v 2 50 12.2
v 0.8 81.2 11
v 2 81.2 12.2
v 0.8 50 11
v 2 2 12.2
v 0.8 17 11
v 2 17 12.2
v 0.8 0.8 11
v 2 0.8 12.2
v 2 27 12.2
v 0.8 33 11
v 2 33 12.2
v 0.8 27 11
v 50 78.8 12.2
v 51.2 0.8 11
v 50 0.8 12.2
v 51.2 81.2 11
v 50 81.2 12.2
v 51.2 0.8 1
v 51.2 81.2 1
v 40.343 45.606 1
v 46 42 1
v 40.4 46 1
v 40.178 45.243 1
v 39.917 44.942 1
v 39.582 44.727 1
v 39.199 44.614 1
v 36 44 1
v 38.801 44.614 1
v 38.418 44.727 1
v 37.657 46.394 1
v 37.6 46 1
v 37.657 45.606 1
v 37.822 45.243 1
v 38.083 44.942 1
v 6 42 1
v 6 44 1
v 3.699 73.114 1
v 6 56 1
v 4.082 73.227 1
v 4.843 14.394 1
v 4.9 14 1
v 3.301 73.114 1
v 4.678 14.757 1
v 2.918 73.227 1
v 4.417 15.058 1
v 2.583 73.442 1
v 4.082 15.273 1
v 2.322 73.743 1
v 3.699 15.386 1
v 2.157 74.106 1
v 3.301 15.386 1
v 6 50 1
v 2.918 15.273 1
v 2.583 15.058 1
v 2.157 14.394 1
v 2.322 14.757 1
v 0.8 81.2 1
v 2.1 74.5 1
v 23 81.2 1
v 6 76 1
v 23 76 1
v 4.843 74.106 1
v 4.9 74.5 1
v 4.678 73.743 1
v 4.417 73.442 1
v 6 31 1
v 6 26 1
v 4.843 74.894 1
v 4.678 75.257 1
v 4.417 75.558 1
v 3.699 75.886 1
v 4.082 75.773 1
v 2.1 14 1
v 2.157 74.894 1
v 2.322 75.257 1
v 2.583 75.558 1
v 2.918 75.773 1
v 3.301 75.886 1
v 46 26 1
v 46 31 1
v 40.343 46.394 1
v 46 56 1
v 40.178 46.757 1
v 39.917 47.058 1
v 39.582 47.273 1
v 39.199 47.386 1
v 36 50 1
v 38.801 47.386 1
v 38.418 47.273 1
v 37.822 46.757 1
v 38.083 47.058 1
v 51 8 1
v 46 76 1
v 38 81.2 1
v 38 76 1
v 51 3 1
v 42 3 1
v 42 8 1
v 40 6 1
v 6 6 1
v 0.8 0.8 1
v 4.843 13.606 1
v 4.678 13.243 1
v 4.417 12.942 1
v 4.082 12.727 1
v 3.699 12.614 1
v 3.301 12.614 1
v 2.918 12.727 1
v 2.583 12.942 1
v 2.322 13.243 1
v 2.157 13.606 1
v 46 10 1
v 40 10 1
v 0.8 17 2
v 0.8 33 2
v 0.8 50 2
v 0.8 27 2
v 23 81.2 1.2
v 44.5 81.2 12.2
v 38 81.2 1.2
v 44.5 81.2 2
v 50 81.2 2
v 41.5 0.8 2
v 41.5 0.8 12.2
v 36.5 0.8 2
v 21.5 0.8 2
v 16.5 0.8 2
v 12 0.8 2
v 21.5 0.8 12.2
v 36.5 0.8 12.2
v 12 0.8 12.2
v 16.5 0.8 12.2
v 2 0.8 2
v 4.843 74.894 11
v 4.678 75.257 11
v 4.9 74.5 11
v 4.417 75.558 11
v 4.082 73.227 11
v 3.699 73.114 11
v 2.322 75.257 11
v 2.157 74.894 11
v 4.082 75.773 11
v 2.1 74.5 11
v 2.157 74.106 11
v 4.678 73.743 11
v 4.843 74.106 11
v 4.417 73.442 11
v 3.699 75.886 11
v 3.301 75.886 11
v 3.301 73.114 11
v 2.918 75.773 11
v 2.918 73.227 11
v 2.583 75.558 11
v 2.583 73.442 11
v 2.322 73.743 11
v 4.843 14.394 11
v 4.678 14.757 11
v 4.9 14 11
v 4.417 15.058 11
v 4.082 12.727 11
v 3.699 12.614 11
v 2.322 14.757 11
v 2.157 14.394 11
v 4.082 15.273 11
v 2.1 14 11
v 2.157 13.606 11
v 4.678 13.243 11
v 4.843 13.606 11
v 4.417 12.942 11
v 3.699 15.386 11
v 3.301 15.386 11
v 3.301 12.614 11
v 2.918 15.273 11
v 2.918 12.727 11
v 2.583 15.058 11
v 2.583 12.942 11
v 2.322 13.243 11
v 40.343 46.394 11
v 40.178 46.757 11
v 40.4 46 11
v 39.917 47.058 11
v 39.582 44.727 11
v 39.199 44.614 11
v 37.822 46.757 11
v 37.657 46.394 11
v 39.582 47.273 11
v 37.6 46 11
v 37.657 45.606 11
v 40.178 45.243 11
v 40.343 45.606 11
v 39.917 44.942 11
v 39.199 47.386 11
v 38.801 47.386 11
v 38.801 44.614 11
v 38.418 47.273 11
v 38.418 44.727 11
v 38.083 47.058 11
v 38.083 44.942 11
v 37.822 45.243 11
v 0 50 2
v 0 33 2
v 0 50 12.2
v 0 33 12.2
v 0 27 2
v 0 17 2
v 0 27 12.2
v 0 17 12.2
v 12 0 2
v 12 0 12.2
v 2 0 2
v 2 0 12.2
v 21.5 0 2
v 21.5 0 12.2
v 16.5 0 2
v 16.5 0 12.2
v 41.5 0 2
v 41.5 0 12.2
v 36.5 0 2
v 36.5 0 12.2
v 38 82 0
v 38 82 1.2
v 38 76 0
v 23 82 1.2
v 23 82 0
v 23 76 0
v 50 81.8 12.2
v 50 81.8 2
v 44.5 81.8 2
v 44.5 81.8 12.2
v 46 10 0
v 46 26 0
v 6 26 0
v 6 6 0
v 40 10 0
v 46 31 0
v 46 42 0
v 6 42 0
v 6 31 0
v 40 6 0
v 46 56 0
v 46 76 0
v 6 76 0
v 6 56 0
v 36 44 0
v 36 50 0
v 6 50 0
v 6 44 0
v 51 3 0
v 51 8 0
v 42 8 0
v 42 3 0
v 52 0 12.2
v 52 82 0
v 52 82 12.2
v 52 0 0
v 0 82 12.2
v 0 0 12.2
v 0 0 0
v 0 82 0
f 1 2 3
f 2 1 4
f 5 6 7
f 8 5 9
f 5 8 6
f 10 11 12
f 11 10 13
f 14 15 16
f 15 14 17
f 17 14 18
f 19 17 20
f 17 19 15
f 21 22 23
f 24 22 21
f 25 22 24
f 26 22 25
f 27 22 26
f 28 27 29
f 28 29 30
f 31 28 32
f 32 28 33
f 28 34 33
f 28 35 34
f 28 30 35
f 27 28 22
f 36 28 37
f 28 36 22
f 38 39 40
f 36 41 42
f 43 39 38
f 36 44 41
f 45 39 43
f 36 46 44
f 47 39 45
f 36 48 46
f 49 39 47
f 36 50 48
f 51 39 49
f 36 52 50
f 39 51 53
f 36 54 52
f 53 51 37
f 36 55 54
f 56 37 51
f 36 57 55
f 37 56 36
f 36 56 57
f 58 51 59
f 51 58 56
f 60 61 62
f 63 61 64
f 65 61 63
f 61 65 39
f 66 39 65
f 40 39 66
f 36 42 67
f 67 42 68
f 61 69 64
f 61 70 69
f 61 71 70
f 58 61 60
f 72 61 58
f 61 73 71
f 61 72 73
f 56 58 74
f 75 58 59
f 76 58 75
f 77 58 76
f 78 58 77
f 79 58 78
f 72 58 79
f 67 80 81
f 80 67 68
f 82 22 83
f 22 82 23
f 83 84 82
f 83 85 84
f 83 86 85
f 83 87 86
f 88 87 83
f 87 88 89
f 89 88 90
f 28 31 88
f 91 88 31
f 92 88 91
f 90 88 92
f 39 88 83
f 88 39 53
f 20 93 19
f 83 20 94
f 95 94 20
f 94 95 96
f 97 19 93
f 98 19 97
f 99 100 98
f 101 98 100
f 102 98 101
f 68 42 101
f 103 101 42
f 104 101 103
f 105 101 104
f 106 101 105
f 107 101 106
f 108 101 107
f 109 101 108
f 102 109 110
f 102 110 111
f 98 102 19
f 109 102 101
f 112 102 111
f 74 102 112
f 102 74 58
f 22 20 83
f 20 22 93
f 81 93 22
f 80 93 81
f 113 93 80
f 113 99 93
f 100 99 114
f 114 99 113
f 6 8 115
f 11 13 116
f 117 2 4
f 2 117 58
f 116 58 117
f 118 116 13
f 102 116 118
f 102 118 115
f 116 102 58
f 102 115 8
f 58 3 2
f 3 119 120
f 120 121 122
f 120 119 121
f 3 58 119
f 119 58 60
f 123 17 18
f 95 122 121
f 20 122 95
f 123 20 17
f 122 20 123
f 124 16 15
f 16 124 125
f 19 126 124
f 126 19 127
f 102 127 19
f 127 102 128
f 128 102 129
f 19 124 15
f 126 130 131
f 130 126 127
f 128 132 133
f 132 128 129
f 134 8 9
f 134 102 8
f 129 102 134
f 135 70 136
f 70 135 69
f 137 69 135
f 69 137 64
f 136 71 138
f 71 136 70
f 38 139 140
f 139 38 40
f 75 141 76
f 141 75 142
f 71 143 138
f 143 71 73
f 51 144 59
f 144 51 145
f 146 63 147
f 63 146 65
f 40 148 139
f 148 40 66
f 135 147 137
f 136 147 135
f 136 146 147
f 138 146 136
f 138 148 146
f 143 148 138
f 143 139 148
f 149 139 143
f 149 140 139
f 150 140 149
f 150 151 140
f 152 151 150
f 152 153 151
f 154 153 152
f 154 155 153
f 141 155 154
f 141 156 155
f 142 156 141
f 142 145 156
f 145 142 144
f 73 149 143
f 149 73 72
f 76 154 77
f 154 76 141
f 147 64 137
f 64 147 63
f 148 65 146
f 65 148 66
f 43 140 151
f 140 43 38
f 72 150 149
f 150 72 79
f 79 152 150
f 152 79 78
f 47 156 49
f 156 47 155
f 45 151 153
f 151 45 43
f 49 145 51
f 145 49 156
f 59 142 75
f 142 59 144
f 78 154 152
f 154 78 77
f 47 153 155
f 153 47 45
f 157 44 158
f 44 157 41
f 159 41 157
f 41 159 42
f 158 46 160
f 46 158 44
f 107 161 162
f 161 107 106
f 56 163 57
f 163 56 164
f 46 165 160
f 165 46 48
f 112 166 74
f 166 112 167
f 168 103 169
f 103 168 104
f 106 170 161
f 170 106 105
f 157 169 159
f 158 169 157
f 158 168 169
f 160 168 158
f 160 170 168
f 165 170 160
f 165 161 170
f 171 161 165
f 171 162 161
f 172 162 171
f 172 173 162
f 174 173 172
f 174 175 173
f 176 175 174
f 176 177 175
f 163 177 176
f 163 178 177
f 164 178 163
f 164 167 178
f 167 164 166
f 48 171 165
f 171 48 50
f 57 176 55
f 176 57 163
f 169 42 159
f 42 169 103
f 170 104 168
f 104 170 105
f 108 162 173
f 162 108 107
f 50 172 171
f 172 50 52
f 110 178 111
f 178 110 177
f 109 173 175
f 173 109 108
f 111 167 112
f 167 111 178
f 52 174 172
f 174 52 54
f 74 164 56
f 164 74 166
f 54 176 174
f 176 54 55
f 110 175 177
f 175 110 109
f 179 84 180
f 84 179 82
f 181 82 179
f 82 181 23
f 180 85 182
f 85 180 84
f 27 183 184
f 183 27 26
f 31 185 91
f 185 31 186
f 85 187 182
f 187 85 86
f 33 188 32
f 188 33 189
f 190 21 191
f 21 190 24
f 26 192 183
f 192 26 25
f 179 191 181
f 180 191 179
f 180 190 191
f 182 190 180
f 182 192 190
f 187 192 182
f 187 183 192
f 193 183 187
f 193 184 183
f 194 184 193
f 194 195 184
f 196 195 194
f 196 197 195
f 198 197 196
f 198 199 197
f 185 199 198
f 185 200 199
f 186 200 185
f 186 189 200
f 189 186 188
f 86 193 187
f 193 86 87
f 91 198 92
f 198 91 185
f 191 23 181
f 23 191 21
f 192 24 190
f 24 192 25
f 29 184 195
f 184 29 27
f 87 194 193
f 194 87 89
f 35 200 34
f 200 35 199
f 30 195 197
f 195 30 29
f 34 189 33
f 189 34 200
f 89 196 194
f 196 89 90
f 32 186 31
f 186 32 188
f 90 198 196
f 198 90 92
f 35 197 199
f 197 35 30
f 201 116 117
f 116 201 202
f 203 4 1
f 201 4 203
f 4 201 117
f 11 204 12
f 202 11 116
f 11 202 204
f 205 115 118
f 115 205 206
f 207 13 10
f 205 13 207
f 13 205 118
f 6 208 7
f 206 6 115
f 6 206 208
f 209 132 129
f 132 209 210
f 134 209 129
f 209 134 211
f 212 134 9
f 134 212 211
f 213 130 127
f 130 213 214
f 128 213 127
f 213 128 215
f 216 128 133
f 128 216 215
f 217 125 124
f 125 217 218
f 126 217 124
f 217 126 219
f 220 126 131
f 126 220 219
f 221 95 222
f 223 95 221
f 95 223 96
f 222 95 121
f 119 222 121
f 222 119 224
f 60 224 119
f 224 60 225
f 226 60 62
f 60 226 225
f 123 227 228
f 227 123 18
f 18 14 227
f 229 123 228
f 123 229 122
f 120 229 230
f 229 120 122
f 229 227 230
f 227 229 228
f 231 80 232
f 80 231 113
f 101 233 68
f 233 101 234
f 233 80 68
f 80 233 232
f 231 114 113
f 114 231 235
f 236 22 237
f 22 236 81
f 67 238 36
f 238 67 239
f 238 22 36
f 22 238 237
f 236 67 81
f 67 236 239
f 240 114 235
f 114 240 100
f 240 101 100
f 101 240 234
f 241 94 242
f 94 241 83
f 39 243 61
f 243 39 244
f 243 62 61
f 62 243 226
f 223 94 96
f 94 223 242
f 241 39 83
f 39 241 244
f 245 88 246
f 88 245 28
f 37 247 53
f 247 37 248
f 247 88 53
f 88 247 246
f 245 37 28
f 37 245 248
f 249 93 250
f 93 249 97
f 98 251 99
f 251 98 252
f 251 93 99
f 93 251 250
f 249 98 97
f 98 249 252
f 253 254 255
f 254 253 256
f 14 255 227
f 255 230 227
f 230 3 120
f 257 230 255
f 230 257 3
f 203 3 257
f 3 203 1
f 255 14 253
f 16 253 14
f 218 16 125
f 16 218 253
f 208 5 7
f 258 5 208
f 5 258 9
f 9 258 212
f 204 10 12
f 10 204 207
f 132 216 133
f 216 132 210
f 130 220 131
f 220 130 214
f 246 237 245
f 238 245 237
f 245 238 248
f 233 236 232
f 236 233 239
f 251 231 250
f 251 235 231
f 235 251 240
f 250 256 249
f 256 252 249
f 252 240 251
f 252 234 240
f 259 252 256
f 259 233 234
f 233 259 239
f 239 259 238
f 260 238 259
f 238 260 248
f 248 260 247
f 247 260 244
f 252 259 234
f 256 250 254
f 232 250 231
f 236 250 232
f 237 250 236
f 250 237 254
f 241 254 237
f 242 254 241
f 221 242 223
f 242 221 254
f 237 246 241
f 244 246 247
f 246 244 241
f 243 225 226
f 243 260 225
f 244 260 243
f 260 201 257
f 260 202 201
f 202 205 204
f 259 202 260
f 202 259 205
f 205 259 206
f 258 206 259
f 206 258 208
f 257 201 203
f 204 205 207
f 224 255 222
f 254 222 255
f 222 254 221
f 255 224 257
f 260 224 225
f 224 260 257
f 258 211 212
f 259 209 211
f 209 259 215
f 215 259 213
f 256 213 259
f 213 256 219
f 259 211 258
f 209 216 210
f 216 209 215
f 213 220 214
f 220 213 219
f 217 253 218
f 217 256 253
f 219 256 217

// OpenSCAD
// SPDX-FileCopyrightText: 2023 Carnegie Mellon University - Satyalab
//
// SPDX-License-Identifier: GPL-2.0-only

$fa = 1;
$fs = 0.4;

tol = 0.2;

onion_width = 50;
onion_height = 80;
onion_depth = 11;

wall = 2;

module onion(w, h, d) {
    cutout = d+2;
    difference() {
        // main shape
        translate([-tol, -tol, 0])
        cube([w+2*tol, h+2*tol, cutout]);
        // mounting holes
        post = 3 - tol;
        translate([2.5, h-6.5, -1]) cylinder(h=d, d=post);
        translate([2.5, 13, -1]) cylinder(h=d, d=post);
        translate([w-12, h-35, -1]) cylinder(h=d, d=post);

        // fillet at top
        translate([0, -wall, d-1])
        union() {
            translate([-tol, 0, 0])
            rotate([0, -45, 0])
            cube([4, h+wall*3, 4]);
            translate([w+tol, 0, 0])
            rotate([0, -45, 0])
            cube([4, h+wall*3, 4]);
        }
    }
    // reset button
    translate([-2, 43.5, 1]) cube([3, 5.5, cutout]);
    // usb port
    translate([-2, 32, 1]) cube([3, 10, cutout]);
    // power switch
    translate([-2, 16, 1]) cube([3, 10, cutout]);
    // battery
    translate([1, -2, 1]) cube([10, 3, cutout]);
    // coax 1
    translate([15.5, -2, 1]) cube([5, 3, cutout]);
    // coax 2
    translate([35.5, -2, 1]) cube([5, 3, cutout]);
    // sim
    translate([22, 60+wall, -wall]) cube([15, 20, wall+tol]);
    // header
    translate([43.5, 77.8, 1]) cube([5.5, 3, cutout]);
    // remove fragile pillar between usb and reset
    translate([-2, 41, 1]) cube([3, 3, cutout]);

    // bottom cutouts

    // originally one big hole, but added a strip to mount reversed
    //translate([5, 9, -3]) cube([40, 32, 5]);
    translate([5, 9, -3]) cube([40, 16, 5]);
    translate([5, 30, -3]) cube([40, 11, 5]);

    translate([5, 5, -3]) cube([34, 5, 5]);
    translate([5, 55, -3]) cube([40, 20, 5]);
    translate([5, 43, -3]) cube([30, 6, 5]);  // resistors
    translate([41, 2, -3]) cube([9, 5, 5]);   // vreg
}

module case() {
    difference() {
        cube([onion_width+wall, onion_height+wall, onion_depth+1+tol]);
        translate([wall/2, wall/2, wall/2])
        onion(w=onion_width, h=onion_height, d=onion_depth);
    }
}

module lid() {
    cube([onion_width+wall, onion_height+wall, wall/4]);
    difference() {
        translate([wall/2, wall/2, 0])
        cube([onion_width, onion_height, wall]);
        translate([wall*2, wall, wall/4])
        cube([onion_width-wall*3, onion_height-wall, wall+1]);

        // fillet
        translate([0, -wall, 0])
        union() {
            translate([wall/2, 0, wall])
            rotate([0, -135, 0])
            translate([-4, 0, 0])
            cube([4, onion_height+wall*3, 4]);
            translate([onion_width+wall/2, 0, wall])
            rotate([0, 135, 0])
            cube([4, onion_height+wall*3, 4]);
        }
    }
}

case();
//lid();
